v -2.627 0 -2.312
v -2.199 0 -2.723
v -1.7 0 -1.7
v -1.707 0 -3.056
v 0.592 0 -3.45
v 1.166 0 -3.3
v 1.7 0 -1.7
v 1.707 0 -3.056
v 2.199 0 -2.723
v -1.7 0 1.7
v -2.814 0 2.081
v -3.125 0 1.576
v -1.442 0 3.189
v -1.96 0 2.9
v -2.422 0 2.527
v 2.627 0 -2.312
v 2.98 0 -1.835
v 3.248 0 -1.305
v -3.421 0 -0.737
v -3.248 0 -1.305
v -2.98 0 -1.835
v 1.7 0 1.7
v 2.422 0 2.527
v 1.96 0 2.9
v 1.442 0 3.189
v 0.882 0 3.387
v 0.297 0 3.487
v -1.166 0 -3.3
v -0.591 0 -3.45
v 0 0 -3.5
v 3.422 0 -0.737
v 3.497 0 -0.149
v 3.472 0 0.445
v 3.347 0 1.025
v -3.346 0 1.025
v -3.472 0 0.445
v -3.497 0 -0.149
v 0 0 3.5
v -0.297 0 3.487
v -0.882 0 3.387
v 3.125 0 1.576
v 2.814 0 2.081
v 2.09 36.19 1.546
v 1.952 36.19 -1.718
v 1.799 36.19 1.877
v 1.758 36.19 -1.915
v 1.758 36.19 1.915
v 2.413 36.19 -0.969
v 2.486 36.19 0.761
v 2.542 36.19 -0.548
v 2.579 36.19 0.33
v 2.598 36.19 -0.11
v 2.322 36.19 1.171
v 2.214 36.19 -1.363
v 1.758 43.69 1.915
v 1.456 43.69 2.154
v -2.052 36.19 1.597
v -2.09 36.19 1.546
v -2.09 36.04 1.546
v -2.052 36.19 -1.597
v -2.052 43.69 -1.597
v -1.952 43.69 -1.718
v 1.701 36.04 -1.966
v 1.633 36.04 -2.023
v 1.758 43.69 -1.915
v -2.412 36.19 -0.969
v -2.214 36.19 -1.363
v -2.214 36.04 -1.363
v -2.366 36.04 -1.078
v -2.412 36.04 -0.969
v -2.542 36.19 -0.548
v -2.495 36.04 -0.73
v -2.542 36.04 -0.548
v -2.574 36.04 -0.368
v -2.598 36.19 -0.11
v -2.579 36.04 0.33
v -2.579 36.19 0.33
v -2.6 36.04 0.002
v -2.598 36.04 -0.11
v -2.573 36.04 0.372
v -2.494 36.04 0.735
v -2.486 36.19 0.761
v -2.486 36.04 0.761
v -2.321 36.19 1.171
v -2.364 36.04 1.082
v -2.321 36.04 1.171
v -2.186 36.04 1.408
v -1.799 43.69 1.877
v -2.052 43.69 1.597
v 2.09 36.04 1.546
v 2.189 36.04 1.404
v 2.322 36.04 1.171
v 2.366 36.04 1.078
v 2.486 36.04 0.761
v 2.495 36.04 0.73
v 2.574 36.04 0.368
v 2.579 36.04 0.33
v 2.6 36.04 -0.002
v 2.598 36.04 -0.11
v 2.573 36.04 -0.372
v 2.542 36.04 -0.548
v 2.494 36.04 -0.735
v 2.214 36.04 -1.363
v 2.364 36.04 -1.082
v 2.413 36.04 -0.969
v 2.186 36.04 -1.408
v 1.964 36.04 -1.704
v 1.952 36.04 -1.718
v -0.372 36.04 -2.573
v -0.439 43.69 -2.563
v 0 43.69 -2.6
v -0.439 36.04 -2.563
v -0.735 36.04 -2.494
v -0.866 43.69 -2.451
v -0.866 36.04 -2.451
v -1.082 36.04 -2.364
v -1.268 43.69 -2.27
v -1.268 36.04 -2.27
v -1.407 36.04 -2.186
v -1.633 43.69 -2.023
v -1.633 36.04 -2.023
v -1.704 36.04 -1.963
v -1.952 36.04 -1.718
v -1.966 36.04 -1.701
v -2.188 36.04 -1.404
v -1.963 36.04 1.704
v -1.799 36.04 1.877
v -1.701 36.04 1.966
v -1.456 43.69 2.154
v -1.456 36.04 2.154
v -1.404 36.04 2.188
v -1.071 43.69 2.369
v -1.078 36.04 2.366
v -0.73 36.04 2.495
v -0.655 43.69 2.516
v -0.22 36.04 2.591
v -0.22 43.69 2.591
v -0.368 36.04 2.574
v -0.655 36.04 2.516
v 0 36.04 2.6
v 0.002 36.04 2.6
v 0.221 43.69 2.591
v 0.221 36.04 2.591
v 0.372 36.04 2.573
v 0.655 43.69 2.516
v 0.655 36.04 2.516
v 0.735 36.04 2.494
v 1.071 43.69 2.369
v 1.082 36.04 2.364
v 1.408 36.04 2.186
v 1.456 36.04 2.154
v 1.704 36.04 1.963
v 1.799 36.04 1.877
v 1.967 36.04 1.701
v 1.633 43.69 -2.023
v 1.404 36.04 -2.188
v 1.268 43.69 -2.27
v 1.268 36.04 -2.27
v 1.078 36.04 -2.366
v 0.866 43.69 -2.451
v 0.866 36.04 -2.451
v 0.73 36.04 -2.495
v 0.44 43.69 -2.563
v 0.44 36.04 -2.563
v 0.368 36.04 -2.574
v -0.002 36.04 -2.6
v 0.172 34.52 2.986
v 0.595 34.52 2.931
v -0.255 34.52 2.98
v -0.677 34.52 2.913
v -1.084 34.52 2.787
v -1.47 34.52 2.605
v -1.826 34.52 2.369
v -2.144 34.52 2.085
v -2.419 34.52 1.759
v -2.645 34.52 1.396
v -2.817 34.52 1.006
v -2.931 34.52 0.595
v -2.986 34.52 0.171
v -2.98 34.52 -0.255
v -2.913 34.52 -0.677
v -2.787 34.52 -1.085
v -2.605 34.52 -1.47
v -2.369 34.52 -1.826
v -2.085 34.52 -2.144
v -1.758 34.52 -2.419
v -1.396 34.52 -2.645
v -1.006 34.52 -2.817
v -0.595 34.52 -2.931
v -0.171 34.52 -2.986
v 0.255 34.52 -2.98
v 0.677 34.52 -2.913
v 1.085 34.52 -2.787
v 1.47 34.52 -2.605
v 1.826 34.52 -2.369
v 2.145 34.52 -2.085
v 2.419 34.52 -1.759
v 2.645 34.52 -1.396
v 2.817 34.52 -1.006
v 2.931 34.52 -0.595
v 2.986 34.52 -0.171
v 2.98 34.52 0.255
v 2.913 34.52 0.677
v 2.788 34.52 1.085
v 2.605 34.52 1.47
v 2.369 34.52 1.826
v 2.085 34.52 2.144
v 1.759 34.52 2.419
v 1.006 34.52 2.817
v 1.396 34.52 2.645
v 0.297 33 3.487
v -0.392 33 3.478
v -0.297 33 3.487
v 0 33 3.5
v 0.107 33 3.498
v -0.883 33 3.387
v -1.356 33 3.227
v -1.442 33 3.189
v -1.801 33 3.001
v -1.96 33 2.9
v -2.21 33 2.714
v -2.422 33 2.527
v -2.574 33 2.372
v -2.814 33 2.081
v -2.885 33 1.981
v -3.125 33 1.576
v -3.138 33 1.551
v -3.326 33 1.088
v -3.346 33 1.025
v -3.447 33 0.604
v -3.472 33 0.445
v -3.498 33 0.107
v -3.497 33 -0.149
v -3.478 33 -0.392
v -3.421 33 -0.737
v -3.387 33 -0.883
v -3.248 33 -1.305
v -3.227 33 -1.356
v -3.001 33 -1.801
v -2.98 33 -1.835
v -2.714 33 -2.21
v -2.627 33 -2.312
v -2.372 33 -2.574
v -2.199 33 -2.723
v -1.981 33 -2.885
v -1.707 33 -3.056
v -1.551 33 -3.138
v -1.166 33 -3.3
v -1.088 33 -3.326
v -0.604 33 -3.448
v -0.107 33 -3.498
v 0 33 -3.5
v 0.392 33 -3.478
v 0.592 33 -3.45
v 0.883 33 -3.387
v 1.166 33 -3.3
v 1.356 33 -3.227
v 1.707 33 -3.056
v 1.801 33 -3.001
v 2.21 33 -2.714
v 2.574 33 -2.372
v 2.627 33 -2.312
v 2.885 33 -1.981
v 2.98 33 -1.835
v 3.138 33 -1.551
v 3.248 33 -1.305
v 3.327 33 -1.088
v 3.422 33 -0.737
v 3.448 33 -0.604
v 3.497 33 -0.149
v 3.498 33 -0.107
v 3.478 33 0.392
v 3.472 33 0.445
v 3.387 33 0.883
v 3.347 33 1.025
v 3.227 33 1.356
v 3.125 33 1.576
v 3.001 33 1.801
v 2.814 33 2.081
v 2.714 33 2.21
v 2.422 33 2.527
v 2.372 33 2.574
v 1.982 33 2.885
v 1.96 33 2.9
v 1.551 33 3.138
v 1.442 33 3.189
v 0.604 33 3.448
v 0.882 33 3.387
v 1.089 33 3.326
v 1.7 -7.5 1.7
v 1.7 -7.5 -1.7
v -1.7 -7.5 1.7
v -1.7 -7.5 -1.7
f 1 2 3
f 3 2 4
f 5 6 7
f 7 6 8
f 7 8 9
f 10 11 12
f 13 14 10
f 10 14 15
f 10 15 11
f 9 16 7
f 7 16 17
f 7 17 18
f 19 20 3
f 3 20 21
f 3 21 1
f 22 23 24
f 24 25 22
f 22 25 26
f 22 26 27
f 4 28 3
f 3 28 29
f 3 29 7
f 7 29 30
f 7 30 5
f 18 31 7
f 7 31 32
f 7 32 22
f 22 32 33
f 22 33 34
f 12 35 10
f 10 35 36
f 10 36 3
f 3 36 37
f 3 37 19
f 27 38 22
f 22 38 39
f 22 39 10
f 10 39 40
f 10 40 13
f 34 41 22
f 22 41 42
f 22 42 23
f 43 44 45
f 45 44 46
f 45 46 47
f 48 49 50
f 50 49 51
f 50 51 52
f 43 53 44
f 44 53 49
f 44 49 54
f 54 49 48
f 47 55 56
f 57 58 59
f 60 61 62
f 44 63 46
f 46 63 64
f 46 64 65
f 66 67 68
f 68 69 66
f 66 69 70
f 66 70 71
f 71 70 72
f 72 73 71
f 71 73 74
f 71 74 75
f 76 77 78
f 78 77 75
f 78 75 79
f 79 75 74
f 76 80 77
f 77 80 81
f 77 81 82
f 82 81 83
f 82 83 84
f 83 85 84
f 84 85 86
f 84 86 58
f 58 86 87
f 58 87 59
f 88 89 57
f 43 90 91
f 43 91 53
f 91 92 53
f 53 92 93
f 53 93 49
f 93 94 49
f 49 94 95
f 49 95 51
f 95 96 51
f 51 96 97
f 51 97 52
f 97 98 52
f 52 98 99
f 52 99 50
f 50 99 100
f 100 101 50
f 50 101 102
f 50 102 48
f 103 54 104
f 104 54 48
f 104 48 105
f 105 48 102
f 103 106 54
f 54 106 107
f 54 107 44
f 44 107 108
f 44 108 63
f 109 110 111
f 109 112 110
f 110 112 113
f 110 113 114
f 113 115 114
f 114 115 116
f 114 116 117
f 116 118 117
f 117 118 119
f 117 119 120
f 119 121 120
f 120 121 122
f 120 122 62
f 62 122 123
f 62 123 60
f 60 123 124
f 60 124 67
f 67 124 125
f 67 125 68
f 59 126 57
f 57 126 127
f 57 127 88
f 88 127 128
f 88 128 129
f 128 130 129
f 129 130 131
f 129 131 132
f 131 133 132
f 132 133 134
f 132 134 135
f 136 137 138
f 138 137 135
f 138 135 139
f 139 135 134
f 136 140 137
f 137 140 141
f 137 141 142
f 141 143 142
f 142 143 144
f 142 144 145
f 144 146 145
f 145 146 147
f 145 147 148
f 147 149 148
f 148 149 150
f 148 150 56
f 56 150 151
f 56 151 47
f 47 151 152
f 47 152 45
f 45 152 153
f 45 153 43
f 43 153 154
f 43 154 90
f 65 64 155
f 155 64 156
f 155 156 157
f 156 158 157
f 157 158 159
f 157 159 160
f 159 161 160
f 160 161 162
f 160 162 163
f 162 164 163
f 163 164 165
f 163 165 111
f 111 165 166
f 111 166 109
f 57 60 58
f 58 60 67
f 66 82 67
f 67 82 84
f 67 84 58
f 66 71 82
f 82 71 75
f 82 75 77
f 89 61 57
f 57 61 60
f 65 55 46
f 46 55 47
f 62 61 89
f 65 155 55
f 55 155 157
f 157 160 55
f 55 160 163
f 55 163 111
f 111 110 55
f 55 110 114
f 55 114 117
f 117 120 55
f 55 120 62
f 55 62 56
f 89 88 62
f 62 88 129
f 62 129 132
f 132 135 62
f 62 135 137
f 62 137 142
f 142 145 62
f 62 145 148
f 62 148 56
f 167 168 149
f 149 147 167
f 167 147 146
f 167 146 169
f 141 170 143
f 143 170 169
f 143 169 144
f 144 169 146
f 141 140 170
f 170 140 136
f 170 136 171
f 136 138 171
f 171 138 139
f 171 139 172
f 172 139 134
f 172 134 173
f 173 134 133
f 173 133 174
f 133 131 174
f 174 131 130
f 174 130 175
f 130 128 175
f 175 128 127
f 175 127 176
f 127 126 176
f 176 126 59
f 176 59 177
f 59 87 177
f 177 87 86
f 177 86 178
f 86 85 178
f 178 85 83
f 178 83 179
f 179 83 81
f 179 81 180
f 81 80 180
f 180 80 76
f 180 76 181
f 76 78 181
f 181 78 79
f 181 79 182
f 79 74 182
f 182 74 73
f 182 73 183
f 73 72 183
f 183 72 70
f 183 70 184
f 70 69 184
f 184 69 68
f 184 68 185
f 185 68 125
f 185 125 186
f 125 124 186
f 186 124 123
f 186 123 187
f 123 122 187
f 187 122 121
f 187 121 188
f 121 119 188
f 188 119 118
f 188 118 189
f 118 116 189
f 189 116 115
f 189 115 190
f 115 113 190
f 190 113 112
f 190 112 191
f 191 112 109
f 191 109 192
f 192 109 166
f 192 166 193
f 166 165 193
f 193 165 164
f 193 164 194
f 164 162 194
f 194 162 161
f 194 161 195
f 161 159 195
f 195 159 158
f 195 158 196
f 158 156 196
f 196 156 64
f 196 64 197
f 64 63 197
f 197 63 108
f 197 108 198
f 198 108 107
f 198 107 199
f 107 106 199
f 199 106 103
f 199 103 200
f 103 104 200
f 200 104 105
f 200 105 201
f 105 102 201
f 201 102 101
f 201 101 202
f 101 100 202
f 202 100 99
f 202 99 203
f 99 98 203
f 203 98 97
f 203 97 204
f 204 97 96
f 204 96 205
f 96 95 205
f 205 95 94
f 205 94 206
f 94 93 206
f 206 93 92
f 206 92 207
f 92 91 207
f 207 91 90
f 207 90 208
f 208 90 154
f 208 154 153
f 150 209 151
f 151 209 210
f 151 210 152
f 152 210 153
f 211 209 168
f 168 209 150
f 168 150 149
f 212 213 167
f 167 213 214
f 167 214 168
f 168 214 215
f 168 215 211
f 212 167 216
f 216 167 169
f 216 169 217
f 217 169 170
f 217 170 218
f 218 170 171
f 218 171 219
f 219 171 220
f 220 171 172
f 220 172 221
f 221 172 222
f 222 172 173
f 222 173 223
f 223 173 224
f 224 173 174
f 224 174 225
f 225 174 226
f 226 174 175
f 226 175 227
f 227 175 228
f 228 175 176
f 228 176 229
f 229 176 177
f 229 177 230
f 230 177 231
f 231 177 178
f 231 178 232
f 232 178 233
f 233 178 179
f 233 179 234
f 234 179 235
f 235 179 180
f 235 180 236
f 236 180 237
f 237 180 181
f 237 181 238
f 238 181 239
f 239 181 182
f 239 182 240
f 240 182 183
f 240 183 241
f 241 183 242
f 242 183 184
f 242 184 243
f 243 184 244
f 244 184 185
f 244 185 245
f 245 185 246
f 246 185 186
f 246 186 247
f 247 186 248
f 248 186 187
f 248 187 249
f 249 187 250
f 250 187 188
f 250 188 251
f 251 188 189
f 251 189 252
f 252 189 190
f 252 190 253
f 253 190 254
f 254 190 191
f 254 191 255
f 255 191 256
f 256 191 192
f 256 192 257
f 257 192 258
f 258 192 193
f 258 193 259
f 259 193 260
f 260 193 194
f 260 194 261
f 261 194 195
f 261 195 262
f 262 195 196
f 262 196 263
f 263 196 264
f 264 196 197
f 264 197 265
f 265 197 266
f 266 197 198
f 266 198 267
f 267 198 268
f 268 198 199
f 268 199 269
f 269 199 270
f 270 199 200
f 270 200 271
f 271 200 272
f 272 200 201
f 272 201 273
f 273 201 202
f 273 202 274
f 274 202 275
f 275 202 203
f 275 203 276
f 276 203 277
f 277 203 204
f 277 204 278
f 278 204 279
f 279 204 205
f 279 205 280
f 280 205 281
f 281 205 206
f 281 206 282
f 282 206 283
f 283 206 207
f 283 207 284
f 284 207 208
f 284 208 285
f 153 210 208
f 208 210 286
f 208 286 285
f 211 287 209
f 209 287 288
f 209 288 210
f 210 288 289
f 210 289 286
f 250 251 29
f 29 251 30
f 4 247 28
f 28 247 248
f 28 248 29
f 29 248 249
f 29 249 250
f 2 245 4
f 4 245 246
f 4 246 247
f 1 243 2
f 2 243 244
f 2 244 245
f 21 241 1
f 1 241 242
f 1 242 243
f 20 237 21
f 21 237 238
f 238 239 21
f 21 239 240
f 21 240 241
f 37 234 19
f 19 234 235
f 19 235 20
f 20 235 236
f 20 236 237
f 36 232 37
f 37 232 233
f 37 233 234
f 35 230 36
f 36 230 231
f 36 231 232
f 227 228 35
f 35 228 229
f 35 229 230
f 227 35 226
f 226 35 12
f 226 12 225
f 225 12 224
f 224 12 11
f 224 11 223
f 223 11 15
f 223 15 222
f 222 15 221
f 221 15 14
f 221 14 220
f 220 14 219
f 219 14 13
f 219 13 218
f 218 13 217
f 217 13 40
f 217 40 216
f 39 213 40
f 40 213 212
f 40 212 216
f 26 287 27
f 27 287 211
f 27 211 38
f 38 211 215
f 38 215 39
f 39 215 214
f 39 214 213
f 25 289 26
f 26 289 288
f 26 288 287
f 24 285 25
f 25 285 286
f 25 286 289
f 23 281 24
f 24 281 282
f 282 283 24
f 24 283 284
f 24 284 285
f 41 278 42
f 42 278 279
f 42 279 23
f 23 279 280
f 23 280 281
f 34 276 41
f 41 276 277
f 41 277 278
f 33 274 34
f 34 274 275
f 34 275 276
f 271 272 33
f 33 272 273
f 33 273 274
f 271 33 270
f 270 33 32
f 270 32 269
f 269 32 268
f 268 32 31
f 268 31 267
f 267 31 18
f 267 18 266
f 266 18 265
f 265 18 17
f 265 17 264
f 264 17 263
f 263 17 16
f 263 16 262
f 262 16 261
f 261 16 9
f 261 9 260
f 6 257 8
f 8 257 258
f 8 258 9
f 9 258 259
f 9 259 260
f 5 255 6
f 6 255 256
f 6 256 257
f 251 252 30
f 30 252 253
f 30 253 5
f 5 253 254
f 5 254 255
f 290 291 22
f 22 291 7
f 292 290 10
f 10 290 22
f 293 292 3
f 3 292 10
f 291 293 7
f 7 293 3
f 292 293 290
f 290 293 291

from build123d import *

# Parameters (mm, degrees)
SKETCH1_R           = 3.5
BOSS_EXTRUDE1_DEPTH = 33
SKETCH2_R           = 2.6
BOSS_EXTRUDE2_DEPTH = 3.19
BOSS_EXTRUDE3_DEPTH = 7.5
SKETCH5_W           = 3.4
SKETCH5_H           = 3.4
BOSS_EXTRUDE4_DEPTH = 7.5


with BuildPart() as part:
    # Sketch1 → Boss-Extrude1 (new body)
    with BuildSketch(Plane(origin=(0, 0, 0), x_dir=(1, 0, 0), z_dir=(0, 1, 0))):
        with Locations(Location((0, 0, 0), (0, 0, 270))):
            Circle(SKETCH1_R)
    extrude(amount=BOSS_EXTRUDE1_DEPTH)

    # Sketch2 → Boss-Extrude2 (add)
    with BuildSketch(Plane(origin=(0, 33, 0), x_dir=(1, 0, 0), z_dir=(0, 1, 0))):
        with Locations(Location((0, 0, 0), (0, 0, 90))):
            Circle(SKETCH2_R)
    extrude(amount=BOSS_EXTRUDE2_DEPTH)

    # Sketch4 → Boss-Extrude3 (add)
    with BuildSketch(Plane(origin=(0, 36.19, 0), x_dir=(1, 0, 0), z_dir=(0, 1, 0))):
        with BuildLine():
            Line((1.758185656, -1.915406798), (1.758185656, 1.915406798))
            ThreePointArc((1.758185656, 1.915406798), (-0.216604889, 2.59096166), (-2.051814344, 1.59689007))
            Line((-2.051814344, 1.59689007), (-2.051814344, -1.59689007))
            ThreePointArc((-2.051814344, -1.59689007), (-0.216604889, -2.59096166), (1.758185656, -1.915406798))
        make_face()
    extrude(amount=BOSS_EXTRUDE3_DEPTH)

    # Loft2: read off the stored shape, not the designer's step
    # Loft2: loft between two sections, ruled curve by curve
    loft2_from = [
        Edge.make_bspline([(0.603918101, 33, 3.447503869), (7.498925839, 33, 2.239667668), (6.291089638, 33, -4.65534007), (-0.603918101, 33, -3.447503869), (-7.498925839, 33, -2.239667668), (-6.291089638, 33, 4.65534007), (0.603918101, 33, 3.447503869)], [0, 0, 0, 0, 0.5, 0.5, 0.5, 1, 1, 1, 1], 3, [1, 0.333333333, 0.333333333, 1, 0.333333333, 0.333333333, 1]),
    ]
    loft2_to = [
        Edge.make_bspline([(1.447224244, 36.19, 2.123780118), (5.694784479, 36.19, -0.77066837), (2.800335991, 36.19, -5.018228605), (-1.447224244, 36.19, -2.123780118), (-5.694784479, 36.19, 0.77066837), (-2.800335991, 36.19, 5.018228605), (1.447224244, 36.19, 2.123780118)], [0, 0, 0, 0, 0.5, 0.5, 0.5, 1, 1, 1, 1], 3, [1, 0.333333333, 0.333333333, 1, 0.333333333, 0.333333333, 1]),
    ]
    loft2 = Solid(Shell([*[Face.make_surface_from_curves(loft2_from[k], loft2_to[k]) for k in range(1)], Face(Wire(loft2_from)), Face(Wire(loft2_to))]))
    add(loft2)

    # Sketch5 → Boss-Extrude4 (add)
    with BuildSketch(Plane.XZ):
        Rectangle(SKETCH5_W, SKETCH5_H)
    extrude(amount=BOSS_EXTRUDE4_DEPTH)


solid = part.part
